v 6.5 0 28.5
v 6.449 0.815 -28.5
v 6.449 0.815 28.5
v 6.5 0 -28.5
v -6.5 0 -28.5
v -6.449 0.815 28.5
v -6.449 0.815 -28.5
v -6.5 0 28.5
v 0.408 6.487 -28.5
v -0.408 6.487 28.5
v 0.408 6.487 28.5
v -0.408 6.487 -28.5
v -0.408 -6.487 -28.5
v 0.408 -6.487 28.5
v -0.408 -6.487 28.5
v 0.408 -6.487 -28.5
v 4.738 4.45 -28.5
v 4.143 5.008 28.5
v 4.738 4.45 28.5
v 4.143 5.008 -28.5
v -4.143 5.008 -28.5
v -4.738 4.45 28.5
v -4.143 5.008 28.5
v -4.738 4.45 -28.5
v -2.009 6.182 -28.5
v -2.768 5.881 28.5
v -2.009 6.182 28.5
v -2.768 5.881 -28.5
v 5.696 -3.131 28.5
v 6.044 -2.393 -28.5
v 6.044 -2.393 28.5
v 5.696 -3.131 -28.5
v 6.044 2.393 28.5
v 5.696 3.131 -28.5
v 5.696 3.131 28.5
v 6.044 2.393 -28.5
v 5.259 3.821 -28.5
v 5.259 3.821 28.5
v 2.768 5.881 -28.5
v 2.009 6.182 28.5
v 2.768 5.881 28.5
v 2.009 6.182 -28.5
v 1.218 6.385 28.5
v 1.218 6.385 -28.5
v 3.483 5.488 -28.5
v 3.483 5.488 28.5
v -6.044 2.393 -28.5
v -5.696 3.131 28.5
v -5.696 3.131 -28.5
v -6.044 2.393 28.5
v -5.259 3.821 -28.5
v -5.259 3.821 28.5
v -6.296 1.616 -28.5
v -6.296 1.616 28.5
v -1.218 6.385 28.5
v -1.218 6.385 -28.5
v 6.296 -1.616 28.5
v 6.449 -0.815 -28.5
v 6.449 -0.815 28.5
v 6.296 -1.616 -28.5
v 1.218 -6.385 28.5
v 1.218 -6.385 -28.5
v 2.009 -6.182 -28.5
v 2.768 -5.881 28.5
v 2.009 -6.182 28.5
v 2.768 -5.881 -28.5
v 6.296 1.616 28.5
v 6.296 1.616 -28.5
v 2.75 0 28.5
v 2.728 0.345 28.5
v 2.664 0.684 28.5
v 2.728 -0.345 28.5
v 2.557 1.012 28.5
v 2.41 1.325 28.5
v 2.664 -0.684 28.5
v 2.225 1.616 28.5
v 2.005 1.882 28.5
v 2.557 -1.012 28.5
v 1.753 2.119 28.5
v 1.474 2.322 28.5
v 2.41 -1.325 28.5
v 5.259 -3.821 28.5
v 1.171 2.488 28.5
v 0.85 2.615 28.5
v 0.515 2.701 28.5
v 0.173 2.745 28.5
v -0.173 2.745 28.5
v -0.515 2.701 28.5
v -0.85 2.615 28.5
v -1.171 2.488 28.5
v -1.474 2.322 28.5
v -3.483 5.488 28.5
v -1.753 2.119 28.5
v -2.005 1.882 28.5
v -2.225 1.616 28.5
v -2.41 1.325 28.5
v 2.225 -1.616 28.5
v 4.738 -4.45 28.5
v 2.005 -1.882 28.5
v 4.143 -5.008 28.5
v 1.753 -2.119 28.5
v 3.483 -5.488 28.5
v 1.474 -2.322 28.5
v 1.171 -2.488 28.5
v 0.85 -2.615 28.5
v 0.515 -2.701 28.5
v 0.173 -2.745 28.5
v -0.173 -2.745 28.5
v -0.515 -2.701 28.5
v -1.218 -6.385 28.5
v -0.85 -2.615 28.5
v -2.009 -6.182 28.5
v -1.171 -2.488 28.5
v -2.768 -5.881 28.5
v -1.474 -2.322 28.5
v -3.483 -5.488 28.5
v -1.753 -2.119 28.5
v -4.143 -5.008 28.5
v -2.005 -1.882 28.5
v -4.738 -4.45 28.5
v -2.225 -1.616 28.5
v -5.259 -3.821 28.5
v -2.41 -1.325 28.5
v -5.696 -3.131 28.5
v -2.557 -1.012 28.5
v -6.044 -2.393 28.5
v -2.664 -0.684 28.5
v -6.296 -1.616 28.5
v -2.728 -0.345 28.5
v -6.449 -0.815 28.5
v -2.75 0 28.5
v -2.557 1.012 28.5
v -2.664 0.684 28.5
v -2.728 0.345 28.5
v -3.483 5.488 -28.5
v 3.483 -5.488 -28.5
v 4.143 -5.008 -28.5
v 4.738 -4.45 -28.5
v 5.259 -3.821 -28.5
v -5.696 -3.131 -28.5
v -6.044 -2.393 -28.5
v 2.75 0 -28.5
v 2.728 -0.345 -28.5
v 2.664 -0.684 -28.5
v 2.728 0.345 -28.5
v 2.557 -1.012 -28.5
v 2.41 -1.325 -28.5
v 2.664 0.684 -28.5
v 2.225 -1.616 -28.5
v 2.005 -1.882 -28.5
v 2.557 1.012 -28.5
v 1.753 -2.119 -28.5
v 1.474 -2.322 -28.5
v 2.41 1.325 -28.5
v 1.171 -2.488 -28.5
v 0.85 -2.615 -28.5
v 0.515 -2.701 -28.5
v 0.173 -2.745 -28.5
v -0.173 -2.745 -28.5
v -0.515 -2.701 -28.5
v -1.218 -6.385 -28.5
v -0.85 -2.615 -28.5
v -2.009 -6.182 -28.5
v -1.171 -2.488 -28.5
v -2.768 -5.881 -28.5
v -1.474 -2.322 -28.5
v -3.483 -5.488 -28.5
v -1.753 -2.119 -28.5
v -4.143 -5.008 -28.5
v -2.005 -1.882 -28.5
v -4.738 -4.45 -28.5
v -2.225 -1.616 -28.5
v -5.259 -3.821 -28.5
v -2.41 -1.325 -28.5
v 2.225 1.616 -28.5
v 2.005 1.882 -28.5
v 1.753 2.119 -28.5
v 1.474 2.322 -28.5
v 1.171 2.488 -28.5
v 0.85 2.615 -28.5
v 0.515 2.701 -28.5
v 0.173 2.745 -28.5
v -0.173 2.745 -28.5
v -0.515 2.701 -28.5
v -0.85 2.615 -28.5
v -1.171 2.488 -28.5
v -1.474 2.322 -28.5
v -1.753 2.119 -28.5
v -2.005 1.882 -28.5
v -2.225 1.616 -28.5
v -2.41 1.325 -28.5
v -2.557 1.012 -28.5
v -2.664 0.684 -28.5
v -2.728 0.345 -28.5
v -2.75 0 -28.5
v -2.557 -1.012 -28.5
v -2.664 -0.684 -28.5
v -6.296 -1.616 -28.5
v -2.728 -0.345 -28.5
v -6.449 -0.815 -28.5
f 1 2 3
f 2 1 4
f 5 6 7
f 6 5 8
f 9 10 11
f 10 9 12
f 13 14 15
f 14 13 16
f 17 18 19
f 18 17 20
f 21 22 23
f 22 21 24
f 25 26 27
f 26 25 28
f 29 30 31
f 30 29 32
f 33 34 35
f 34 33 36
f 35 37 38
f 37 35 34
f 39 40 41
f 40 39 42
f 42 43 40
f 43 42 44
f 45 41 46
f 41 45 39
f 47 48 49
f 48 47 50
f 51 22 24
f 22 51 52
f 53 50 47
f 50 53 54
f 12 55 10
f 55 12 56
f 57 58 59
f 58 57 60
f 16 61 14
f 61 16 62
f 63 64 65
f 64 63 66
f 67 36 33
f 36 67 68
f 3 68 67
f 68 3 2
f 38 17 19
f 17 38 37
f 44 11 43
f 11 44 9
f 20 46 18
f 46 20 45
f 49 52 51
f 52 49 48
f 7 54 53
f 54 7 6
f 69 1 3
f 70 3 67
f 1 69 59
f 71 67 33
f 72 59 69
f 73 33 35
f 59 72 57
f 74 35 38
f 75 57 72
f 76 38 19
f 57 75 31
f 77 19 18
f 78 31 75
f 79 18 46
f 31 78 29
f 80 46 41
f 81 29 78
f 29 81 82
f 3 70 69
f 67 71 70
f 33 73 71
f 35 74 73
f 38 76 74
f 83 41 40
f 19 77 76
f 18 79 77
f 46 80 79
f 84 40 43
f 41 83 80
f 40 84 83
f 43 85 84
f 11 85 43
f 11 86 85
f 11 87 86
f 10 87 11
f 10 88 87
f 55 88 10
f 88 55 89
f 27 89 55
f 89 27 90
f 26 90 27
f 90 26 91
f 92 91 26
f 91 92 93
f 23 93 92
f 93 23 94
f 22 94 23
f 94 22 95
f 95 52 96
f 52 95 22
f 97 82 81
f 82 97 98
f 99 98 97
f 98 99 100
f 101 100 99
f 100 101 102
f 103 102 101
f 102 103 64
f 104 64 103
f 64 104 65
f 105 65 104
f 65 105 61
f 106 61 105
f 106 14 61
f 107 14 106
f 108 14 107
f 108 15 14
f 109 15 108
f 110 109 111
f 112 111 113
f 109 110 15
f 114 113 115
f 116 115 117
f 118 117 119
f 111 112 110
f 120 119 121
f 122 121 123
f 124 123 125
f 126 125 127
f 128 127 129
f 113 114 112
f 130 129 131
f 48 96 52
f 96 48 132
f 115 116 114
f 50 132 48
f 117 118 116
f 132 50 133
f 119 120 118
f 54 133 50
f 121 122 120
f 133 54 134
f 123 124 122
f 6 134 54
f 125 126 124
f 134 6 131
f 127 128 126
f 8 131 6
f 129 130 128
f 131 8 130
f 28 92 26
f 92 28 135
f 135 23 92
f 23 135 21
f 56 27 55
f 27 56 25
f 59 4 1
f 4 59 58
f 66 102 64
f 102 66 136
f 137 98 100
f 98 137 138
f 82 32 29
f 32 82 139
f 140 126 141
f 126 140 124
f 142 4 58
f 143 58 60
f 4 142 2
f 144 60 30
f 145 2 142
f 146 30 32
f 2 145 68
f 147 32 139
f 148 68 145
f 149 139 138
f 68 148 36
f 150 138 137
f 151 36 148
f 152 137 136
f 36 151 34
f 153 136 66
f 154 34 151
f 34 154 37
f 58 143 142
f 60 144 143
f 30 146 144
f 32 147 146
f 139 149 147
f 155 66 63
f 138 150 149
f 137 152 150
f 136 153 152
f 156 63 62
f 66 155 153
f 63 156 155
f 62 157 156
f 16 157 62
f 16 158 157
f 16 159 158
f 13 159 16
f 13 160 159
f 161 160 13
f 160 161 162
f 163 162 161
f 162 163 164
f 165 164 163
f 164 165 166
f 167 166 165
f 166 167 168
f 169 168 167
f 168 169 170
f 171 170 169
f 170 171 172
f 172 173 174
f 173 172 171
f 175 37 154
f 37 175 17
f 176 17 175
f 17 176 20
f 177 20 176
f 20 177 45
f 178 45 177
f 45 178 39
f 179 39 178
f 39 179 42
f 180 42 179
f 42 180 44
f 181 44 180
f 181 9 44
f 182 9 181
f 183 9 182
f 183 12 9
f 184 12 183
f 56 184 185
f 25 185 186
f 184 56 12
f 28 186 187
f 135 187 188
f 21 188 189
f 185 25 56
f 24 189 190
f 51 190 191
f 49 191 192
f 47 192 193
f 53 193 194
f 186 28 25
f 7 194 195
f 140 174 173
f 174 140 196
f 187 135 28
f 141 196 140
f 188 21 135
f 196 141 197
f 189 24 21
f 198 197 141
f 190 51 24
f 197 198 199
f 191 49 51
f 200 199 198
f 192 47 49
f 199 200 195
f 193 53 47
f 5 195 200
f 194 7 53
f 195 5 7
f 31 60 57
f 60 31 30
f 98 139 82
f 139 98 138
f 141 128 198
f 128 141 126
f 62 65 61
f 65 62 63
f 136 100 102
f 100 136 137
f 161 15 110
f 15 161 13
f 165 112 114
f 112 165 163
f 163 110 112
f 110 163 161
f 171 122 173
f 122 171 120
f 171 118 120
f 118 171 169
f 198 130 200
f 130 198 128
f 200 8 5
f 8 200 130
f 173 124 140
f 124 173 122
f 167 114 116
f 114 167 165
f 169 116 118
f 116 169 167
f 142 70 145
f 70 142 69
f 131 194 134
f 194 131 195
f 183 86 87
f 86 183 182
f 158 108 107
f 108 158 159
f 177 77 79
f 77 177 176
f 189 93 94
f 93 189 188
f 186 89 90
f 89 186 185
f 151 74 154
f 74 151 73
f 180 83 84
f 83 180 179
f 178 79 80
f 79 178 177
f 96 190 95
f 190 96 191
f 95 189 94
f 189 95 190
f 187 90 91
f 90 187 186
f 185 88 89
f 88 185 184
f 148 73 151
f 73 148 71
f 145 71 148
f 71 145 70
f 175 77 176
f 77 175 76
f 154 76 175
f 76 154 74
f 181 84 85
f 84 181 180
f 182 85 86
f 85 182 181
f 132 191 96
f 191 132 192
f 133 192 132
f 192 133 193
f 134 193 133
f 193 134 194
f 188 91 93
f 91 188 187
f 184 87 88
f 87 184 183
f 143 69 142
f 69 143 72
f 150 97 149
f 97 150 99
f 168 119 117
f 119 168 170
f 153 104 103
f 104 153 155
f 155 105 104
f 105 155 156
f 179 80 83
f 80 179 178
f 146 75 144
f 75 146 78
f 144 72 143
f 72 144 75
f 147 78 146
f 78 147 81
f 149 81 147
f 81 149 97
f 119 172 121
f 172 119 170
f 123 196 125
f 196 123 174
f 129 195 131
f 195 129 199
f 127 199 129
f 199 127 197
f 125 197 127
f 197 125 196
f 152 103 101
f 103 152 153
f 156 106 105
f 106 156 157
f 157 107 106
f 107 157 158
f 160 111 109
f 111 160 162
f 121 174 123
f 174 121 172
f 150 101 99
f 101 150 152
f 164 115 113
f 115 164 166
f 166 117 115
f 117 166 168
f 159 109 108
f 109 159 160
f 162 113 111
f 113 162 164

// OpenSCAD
$fn = 50;


difference() {
	union() {
		translate(v = [0, 0, -28.5000000000]) {
			cylinder(h = 57, r = 6.5000000000);
		}
	}
	union() {
		translate(v = [0, 0, -100.0000000000]) {
			cylinder(h = 200, r = 2.7500000000);
		}
	}
}
